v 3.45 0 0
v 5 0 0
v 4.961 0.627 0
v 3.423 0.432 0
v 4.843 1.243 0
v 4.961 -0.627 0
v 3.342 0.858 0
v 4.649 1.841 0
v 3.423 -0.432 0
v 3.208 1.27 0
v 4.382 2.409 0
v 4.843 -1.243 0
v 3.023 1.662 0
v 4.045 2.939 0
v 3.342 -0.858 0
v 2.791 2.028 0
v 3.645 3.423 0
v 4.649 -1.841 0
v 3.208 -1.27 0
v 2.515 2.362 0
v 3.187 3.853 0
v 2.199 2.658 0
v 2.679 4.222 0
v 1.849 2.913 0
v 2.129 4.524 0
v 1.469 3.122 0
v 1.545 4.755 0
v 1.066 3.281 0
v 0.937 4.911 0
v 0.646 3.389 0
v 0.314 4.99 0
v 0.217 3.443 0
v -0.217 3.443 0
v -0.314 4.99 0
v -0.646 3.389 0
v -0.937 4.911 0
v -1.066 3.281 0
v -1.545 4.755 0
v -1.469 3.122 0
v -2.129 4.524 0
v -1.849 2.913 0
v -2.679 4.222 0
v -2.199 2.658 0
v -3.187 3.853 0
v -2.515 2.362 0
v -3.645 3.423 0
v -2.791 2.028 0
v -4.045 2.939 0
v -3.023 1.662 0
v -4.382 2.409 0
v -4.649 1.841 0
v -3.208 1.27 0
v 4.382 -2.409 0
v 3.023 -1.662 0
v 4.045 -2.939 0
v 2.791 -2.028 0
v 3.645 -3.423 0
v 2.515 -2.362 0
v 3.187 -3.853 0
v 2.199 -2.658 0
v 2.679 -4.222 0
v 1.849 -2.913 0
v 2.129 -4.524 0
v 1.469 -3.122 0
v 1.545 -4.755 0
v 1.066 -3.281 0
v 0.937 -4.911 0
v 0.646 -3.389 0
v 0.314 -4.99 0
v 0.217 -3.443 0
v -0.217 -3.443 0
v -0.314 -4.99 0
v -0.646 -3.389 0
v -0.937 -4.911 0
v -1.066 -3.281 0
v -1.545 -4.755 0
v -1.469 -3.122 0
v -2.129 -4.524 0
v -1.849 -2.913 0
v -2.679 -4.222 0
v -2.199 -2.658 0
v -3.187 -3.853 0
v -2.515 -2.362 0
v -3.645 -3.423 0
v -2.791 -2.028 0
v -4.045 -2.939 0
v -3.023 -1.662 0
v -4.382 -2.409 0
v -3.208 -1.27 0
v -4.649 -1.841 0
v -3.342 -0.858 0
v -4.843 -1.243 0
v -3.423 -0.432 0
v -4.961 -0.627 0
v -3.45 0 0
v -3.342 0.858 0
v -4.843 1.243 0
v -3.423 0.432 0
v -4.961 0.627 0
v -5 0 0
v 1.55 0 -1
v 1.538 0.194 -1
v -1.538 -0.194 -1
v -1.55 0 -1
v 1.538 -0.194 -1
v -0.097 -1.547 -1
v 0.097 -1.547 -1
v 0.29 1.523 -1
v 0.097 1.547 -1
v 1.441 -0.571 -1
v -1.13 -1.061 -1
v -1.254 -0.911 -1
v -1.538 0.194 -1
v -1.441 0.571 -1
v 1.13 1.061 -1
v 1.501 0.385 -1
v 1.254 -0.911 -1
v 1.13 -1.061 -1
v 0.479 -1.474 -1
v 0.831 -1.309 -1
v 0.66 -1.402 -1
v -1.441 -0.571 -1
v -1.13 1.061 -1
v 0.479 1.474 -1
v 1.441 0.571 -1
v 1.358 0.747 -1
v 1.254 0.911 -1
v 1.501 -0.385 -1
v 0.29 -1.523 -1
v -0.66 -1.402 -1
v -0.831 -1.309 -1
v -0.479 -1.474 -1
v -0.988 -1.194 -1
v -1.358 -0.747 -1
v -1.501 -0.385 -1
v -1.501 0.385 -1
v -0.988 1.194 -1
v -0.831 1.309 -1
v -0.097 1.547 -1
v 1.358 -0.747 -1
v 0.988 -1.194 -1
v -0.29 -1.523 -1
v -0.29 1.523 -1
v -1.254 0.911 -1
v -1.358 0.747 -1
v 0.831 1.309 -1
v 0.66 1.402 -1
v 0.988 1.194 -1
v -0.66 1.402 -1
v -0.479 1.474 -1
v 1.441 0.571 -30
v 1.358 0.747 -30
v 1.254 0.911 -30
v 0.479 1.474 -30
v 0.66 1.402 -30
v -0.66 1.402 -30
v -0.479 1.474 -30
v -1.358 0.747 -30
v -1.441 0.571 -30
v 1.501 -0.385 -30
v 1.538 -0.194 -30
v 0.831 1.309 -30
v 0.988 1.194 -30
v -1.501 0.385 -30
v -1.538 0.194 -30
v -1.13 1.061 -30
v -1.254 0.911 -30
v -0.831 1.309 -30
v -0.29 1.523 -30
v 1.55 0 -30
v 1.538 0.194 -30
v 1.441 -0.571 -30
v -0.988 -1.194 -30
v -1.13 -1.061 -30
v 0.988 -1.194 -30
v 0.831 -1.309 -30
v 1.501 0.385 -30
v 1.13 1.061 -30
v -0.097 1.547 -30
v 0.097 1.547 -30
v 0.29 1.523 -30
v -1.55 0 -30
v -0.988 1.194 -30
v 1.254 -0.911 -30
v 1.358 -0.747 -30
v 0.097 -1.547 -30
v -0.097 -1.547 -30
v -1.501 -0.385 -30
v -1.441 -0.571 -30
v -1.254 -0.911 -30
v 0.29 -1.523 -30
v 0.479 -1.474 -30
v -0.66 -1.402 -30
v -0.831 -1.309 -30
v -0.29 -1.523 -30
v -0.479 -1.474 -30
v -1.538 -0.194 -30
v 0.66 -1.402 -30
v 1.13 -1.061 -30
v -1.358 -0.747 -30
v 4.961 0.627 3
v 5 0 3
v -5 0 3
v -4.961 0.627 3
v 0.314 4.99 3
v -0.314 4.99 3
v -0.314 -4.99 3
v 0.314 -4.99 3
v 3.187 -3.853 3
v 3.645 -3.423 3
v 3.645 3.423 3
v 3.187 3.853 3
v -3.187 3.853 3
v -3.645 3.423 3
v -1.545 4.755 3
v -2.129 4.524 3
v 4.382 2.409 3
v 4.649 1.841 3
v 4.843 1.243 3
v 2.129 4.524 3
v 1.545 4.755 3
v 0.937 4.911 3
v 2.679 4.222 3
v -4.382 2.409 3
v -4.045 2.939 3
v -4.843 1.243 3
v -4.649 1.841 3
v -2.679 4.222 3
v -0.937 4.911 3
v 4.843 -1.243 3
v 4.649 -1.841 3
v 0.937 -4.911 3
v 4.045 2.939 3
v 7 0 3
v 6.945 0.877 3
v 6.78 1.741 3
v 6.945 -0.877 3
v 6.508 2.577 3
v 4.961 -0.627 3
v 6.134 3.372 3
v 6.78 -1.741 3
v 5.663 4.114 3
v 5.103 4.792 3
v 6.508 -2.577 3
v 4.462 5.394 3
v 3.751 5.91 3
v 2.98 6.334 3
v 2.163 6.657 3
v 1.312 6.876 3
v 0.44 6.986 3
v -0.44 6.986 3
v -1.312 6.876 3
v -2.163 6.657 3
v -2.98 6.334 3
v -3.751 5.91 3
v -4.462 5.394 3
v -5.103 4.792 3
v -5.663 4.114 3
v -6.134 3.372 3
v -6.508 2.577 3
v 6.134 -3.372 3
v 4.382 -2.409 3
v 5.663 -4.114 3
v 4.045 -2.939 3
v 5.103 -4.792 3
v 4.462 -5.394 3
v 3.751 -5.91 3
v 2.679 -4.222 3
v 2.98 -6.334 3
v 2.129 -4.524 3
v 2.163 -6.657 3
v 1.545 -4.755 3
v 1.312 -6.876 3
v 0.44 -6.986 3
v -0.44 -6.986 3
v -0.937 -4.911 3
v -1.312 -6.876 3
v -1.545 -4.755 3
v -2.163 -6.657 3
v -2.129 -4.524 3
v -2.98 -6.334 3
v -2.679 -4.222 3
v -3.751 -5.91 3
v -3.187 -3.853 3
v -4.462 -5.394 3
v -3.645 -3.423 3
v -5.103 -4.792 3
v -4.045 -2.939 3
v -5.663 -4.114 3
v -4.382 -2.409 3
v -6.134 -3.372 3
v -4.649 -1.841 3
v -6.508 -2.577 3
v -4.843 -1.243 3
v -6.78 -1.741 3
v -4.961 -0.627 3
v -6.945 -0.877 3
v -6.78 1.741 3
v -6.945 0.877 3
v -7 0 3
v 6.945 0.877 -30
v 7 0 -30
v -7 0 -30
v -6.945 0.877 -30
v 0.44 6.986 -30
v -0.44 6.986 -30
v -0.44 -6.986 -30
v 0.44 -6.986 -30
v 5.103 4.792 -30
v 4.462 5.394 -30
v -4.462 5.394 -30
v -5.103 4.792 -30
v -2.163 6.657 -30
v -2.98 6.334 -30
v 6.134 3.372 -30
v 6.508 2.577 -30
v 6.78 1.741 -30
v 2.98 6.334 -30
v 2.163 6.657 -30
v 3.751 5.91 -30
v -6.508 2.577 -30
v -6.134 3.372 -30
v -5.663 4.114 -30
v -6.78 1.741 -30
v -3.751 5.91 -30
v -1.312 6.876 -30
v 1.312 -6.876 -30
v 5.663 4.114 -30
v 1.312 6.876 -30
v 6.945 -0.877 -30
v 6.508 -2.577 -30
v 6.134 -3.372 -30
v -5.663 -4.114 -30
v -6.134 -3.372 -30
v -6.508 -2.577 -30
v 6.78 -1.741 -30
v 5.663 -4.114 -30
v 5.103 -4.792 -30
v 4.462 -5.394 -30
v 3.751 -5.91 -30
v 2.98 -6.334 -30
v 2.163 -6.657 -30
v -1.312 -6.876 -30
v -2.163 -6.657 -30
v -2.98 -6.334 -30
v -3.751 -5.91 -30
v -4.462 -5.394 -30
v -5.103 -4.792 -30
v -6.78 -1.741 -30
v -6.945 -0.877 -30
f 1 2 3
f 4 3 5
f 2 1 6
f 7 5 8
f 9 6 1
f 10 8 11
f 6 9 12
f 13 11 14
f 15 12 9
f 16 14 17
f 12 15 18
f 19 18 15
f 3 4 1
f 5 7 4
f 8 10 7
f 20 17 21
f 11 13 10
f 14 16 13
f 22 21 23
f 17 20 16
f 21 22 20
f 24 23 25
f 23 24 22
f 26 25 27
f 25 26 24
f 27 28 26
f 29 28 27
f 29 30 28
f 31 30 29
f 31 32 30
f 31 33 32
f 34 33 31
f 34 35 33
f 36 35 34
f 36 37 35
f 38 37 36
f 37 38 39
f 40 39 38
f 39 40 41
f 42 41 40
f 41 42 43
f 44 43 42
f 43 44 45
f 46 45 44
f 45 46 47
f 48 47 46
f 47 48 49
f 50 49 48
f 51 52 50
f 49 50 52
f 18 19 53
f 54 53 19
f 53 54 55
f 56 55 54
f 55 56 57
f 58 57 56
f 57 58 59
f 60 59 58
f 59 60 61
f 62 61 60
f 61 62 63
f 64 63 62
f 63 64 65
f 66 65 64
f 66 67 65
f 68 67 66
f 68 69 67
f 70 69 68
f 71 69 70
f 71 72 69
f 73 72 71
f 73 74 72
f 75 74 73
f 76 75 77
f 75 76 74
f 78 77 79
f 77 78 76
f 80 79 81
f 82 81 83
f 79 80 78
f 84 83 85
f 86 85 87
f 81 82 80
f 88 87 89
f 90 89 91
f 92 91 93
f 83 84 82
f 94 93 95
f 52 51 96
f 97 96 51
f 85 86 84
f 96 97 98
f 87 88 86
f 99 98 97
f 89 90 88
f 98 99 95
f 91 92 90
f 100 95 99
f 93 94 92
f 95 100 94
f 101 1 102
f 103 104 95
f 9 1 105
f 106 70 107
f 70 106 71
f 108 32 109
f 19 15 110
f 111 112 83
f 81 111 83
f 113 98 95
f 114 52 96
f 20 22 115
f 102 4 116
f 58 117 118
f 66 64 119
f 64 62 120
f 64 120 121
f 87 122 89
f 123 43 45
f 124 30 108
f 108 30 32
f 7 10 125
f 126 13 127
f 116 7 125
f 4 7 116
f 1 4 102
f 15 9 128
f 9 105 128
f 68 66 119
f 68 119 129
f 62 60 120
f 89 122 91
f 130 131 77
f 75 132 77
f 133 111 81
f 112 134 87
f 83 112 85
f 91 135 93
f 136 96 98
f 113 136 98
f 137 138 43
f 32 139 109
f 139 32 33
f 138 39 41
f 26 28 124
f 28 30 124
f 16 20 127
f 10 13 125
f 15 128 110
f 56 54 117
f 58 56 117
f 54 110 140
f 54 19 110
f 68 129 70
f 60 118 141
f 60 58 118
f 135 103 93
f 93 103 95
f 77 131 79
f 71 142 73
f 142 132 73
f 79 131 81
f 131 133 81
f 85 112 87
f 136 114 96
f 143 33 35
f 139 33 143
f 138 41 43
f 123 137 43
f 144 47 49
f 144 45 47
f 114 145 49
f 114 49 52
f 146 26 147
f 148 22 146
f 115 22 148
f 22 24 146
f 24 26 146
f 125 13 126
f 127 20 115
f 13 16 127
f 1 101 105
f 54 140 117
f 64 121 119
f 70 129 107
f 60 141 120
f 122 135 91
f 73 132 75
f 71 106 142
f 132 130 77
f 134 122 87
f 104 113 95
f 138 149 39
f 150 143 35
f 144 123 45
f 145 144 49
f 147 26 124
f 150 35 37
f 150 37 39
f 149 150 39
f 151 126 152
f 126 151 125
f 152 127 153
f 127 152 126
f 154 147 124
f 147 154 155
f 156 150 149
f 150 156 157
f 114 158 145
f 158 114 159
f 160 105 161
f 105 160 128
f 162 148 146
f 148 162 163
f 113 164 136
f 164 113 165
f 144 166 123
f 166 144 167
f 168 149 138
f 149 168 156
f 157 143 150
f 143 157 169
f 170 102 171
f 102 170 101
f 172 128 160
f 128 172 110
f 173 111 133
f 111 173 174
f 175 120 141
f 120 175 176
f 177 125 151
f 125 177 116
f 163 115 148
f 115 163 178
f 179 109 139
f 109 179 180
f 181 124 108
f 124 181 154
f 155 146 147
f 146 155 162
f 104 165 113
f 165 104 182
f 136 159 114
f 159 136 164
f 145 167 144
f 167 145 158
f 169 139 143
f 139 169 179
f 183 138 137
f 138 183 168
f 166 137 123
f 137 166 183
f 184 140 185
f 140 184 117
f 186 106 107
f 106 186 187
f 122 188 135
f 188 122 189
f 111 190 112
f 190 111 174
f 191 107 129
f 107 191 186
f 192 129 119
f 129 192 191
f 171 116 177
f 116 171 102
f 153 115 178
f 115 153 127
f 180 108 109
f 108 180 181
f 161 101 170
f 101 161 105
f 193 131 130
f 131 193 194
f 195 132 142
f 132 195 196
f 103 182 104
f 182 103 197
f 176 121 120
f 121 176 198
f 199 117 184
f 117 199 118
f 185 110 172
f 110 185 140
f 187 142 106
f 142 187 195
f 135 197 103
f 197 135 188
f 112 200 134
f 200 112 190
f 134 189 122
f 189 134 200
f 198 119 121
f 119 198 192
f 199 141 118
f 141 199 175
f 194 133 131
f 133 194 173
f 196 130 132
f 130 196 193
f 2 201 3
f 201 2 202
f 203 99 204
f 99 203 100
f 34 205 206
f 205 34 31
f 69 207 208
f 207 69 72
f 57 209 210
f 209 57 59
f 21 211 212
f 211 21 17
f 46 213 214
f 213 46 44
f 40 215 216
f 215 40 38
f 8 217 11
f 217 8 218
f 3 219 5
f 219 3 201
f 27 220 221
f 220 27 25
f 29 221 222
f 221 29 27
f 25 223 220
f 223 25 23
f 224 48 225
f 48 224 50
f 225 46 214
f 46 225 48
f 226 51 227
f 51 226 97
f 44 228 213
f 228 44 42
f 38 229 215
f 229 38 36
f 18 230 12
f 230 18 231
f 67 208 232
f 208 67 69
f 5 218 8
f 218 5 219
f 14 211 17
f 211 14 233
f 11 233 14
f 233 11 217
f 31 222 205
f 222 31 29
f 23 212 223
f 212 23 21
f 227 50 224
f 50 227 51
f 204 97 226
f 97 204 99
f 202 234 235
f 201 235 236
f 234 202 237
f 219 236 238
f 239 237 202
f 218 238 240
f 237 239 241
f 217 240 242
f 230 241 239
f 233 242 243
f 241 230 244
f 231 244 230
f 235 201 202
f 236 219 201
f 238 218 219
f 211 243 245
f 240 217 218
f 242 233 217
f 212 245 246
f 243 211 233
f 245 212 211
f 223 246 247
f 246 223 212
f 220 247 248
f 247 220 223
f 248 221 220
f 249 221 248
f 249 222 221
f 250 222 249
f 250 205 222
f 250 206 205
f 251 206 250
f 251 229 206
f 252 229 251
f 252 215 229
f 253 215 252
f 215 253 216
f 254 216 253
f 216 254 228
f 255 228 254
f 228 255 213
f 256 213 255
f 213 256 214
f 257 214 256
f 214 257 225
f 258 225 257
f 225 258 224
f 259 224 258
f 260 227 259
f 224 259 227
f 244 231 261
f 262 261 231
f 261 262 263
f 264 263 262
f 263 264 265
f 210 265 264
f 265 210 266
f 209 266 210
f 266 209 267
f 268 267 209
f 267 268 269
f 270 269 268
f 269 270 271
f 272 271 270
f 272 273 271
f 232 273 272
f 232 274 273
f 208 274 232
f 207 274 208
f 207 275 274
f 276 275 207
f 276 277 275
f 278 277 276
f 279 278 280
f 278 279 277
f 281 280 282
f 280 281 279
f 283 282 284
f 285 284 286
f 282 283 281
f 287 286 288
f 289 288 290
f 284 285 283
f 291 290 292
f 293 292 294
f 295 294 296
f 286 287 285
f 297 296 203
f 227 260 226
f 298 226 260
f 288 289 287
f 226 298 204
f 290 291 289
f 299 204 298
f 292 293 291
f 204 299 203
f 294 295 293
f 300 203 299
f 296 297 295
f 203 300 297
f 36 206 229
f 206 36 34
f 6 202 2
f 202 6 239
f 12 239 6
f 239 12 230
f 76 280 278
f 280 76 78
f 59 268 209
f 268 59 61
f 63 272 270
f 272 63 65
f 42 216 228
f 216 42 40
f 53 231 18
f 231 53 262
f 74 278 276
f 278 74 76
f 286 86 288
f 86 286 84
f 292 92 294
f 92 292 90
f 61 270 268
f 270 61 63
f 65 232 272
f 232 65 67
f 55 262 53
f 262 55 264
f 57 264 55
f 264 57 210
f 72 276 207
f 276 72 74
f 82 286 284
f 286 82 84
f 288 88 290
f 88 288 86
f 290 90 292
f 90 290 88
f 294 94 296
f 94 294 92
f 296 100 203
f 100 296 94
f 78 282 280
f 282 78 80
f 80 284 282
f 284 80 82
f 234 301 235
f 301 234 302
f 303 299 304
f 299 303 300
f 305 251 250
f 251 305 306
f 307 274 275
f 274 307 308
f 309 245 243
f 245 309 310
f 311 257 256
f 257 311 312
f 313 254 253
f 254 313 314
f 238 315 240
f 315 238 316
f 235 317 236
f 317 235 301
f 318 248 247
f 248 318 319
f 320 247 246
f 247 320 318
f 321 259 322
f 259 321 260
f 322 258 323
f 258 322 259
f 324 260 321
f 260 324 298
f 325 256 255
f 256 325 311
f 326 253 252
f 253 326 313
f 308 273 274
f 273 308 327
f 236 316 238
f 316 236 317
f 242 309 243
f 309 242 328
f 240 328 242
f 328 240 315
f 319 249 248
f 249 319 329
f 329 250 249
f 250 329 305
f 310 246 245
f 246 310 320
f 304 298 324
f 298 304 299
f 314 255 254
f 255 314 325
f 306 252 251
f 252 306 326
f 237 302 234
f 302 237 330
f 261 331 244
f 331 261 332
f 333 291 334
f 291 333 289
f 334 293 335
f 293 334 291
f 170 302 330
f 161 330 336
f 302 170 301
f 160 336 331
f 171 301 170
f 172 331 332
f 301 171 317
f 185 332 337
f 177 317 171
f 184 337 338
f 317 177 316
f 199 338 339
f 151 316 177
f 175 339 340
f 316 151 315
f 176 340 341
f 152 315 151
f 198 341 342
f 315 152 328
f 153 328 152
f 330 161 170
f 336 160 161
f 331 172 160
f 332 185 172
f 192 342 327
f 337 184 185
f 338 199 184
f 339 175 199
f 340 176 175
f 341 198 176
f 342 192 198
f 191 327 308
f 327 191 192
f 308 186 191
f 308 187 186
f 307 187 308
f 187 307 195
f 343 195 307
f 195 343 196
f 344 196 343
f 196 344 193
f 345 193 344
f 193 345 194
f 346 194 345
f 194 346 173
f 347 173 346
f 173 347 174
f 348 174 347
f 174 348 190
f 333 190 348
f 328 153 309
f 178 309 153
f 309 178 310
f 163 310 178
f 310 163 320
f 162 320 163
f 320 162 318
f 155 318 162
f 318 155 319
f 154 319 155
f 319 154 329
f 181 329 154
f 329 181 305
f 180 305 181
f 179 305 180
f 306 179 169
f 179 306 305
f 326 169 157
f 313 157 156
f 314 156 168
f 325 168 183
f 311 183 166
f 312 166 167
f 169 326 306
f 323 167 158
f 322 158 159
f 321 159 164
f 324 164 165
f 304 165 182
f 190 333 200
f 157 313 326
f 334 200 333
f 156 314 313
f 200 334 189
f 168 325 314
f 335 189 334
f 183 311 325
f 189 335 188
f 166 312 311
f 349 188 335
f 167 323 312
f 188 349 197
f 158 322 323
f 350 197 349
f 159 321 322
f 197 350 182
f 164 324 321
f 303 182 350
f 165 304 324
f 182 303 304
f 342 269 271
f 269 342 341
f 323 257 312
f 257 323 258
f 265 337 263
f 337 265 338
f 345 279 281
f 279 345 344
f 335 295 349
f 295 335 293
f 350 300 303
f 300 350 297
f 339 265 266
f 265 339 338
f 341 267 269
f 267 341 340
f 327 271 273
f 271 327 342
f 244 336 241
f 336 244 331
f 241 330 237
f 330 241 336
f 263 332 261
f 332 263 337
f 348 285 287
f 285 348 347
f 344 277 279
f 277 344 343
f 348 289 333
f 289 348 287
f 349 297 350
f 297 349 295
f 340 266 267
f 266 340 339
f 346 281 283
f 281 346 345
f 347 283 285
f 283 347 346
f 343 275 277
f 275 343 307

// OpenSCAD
$fn = 50;

difference() {
	union() {
		translate(v = [0, 0, -30.0]) {
			cylinder(h = 33, r = 7.0);
		}
	}
	union() {
		translate(v = [0, 0, 0]) {
			rotate(a = [0, 0, 0]) {
				difference() {
					union() {
						translate(v = [0, 0, -33.0]) {
							cylinder(h = 33, r = 1.25);
						}
						translate(v = [0, 0, -1.0]) {
							cylinder(h = 1.0, r1 = 1.55, r2 = 3.45);
						}
						translate(v = [0, 0, -33.0]) {
							cylinder(h = 33, r = 1.55);
						}
						translate(v = [0, 0, -33.0]) {
							cylinder(h = 33, r = 1.25);
						}
					}
					union();
				}
			}
		}
		#cylinder(h = 3, r = 5.0);
	}
}
